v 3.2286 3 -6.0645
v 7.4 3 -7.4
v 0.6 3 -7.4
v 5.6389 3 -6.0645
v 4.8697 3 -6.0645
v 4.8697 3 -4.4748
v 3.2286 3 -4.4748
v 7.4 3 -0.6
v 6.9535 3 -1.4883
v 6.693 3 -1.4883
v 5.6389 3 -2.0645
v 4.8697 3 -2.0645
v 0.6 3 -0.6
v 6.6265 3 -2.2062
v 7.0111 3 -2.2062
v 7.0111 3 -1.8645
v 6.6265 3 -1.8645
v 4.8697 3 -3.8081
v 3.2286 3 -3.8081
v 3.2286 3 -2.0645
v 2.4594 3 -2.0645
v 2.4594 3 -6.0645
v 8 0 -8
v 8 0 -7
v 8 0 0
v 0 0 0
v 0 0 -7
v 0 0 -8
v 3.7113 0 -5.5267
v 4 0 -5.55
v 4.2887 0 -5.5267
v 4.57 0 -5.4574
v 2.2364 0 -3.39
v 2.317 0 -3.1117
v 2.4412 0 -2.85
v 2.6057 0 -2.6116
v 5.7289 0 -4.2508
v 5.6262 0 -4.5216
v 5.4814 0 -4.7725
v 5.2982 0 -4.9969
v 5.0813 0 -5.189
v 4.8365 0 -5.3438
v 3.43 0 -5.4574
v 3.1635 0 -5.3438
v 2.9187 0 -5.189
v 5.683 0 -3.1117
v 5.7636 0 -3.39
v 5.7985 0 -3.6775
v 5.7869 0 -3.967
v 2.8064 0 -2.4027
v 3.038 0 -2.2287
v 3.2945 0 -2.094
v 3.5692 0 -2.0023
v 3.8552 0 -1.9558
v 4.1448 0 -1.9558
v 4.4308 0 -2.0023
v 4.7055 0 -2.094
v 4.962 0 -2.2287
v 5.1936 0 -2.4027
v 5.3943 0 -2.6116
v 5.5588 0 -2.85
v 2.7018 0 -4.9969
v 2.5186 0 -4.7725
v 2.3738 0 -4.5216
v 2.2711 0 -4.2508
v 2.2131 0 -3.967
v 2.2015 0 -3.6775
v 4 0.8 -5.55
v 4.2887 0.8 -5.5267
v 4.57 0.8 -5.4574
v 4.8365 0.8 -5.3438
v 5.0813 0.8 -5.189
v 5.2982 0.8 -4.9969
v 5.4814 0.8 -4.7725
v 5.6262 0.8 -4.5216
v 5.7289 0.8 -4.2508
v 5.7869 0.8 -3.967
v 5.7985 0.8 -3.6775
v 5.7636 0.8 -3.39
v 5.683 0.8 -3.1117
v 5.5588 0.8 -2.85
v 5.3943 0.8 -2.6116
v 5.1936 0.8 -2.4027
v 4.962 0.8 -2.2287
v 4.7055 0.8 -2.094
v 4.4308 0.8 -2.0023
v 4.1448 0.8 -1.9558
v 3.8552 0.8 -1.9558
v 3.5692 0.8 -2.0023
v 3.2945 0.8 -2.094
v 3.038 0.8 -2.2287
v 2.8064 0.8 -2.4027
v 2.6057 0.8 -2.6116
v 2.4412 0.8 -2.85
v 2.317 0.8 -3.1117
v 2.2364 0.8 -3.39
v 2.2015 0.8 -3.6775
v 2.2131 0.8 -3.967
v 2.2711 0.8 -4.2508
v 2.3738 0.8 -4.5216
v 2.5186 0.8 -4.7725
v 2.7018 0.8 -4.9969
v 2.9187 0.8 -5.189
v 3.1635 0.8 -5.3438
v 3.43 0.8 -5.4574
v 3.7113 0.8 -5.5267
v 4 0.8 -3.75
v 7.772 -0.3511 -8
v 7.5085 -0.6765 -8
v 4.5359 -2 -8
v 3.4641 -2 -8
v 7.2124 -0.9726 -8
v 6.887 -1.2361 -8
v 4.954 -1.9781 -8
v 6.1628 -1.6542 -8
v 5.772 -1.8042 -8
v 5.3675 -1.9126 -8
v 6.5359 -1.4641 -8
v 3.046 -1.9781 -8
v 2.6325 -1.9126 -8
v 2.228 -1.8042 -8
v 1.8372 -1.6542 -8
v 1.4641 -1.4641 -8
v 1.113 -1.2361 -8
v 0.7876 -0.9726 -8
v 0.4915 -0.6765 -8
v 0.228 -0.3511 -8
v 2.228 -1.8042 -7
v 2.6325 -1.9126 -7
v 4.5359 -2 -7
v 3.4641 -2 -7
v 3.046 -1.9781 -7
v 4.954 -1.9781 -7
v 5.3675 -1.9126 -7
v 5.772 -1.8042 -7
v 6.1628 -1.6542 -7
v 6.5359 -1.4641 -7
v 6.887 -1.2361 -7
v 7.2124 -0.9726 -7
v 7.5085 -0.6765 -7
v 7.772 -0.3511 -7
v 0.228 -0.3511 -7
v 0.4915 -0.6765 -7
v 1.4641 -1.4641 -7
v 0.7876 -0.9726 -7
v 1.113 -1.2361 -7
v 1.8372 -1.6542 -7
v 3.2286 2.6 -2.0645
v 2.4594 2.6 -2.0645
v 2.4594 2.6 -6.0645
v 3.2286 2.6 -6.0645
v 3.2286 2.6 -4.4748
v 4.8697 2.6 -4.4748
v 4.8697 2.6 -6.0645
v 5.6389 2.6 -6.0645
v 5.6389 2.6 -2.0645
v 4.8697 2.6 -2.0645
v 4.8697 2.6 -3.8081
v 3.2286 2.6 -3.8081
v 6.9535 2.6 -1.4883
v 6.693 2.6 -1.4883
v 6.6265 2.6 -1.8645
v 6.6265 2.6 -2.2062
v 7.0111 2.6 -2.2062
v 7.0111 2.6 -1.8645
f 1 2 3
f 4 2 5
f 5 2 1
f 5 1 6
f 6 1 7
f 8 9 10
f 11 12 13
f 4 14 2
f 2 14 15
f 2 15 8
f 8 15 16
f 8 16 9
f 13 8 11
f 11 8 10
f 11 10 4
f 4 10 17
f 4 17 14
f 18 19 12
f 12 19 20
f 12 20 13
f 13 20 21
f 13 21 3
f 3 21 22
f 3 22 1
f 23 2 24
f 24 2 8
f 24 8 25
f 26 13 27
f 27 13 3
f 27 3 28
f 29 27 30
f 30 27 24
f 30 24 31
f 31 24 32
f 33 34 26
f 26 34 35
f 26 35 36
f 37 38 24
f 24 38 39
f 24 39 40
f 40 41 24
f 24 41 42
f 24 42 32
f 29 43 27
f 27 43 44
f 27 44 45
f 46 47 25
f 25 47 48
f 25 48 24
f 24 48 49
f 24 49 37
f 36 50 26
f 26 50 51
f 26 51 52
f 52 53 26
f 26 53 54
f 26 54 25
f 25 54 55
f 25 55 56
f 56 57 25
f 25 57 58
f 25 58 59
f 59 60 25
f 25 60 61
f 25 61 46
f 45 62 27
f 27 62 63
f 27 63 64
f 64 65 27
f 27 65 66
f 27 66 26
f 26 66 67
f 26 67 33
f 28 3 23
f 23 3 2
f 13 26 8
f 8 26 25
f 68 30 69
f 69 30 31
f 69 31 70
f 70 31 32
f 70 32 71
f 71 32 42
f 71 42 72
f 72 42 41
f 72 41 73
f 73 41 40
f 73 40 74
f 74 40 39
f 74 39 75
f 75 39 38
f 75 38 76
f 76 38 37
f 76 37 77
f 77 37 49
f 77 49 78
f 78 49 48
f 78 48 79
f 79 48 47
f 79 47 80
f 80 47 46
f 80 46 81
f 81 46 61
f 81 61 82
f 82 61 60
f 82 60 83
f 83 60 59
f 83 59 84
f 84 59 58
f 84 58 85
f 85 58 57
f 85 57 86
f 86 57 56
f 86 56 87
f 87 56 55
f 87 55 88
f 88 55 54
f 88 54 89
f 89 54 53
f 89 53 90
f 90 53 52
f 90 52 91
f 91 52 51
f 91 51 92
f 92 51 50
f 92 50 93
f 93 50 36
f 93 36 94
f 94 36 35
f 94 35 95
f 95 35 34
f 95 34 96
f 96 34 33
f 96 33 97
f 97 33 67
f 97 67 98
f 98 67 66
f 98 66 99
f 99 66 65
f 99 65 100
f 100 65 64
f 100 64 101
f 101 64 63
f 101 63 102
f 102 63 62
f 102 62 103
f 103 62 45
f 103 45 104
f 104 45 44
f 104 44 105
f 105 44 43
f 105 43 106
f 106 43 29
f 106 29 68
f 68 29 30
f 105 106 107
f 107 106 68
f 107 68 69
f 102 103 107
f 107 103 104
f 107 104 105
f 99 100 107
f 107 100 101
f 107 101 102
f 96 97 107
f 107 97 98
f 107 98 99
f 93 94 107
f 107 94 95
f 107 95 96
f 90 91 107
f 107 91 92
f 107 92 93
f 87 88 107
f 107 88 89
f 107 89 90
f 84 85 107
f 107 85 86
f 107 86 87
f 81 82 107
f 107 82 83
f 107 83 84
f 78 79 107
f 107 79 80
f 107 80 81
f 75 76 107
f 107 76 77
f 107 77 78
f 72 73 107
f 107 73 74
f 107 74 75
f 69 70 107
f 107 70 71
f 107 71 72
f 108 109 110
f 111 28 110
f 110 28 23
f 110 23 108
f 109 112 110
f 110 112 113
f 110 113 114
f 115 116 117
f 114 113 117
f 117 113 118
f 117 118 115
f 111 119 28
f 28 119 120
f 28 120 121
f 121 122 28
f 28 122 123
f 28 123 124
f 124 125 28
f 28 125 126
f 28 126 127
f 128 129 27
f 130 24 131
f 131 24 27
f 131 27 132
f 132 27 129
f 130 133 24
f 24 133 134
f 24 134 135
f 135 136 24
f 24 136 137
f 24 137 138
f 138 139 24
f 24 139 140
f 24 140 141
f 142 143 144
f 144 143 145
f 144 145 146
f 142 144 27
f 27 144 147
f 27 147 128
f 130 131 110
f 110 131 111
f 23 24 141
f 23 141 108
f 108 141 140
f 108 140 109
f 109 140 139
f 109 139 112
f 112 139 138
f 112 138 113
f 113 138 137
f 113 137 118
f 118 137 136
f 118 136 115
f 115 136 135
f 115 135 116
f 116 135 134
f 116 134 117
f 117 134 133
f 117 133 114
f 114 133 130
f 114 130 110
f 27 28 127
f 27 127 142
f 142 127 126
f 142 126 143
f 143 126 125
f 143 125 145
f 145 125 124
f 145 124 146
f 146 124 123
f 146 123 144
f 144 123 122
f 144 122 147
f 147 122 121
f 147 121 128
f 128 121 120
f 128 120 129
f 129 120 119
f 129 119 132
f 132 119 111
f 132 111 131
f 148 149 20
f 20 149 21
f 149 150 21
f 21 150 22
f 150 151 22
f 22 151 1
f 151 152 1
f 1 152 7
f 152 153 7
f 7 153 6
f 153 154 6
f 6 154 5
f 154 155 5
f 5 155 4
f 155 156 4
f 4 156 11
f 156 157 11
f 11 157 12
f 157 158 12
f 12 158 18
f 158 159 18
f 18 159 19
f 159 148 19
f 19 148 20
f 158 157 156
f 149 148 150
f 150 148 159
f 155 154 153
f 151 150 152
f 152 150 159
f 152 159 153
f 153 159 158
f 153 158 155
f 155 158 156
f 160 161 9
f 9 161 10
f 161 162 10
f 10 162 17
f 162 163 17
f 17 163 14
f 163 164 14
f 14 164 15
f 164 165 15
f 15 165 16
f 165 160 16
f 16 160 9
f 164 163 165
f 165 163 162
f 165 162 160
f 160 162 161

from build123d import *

# Parameters (mm, degrees)
SKETCH1_W               = 8
SKETCH1_H               = 8
BOSS_EXTRUDE1_DEPTH     = 3
CUT_EXTRUDE1_DEPTH      = 12.704699911
CUT_EXTRUDE1_DEPTH_BACK = 12.704699911
CUT_EXTRUDE2_DEPTH      = 11
SKETCH4_R               = 1.8
CUT_EXTRUDE3_DEPTH      = 0.8
SKETCH5_W               = 8
SKETCH5_H               = 1
BOSS_EXTRUDE2_DEPTH     = 2
FILLET1_R               = 4
CUT_EXTRUDE4_DEPTH      = 0.4
CUT_EXTRUDE5_DEPTH      = 0.4


with BuildPart() as part:
    # Sketch1 → Boss-Extrude1 (new body)
    with BuildSketch(Plane(origin=(0, 0, 0), x_dir=(1, 0, 0), z_dir=(0, 1, 0))):
        with Locations((4, 4)):
            Rectangle(SKETCH1_W, SKETCH1_H)
    extrude(amount=BOSS_EXTRUDE1_DEPTH)

    # Sketch2 → Cut-Extrude1 (cut, two sides: drawn at the far end of the back side and taken through both)
    with BuildSketch(Plane.XY.offset(-CUT_EXTRUDE1_DEPTH_BACK)):
        Polygon((0, 0), (0.6, 3), (0, 3), align=None)
        Polygon((8, 0), (7.4, 3), (8, 3), align=None)
    extrude(amount=CUT_EXTRUDE1_DEPTH + CUT_EXTRUDE1_DEPTH_BACK, mode=Mode.SUBTRACT)

    # Sketch3 → Cut-Extrude2 (cut)
    with BuildSketch(Plane(origin=(0, 0, 0), x_dir=(0, 0, -1), z_dir=(1, 0, 0))):
        Polygon((0, 0), (0.6, 3), (0, 3), align=None)
        Polygon((8, 3), (7.4, 3), (8, 0), align=None)
    extrude(amount=CUT_EXTRUDE2_DEPTH, mode=Mode.SUBTRACT)

    # Sketch4 → Cut-Extrude3 (cut)
    with BuildSketch(Plane.XZ):
        with Locations(Location((4, -3.75, 0), (0, 0, 270))):
            Circle(SKETCH4_R)
    extrude(amount=-CUT_EXTRUDE3_DEPTH, mode=Mode.SUBTRACT)

    # Sketch5 → Boss-Extrude2 (add)
    with BuildSketch(Plane.XZ):
        with Locations((4, -7.5)):
            Rectangle(SKETCH5_W, SKETCH5_H)
    extrude(amount=BOSS_EXTRUDE2_DEPTH)

    # Fillet1
    # the kernel refuses this fillet: 4 mm, written as the material it takes off along each edge
    with BuildSketch(Plane(origin=(8, -2, -16.660254038), x_dir=(0, 1, 0), z_dir=(0, 0, 1)), Plane(origin=(0, -2, 1.660254038), x_dir=(0, 1, 0), z_dir=(0, 0, -1))) as fillet1_piece_1:
        with BuildLine():
            CenterArc((4, 3.464101615), FILLET1_R, 180, 60)
            Line((0, 3.464101615), (-0.08, 3.464101615))
            Line((-0.08, 3.464101615), (-0.08, 0))
            Line((-0.08, 0), (0, -0.08))
            ThreePointArc((0, -0.08), (1, -0.08), (1.96, -0.069282032))
            Line((1.96, -0.069282032), (2, 0))
        make_face()
    extrude(amount=18.320508076, mode=Mode.SUBTRACT)

    # Sketch6 → Cut-Extrude4 (cut)
    with BuildSketch(Plane(origin=(0, 3, 0), x_dir=(1, 0, 0), z_dir=(0, 1, 0))):
        Polygon((2.459405501, 2.064543337), (2.459405501, 6.064543337), (3.22863627, 6.064543337), (3.22863627, 4.474799747), (4.869661911, 4.474799747), (4.869661911, 6.064543337), (5.63889268, 6.064543337), (5.63889268, 2.064543337), (4.869661911, 2.064543337), (4.869661911, 3.80813308), (3.22863627, 3.80813308), (3.22863627, 2.064543337), align=None)
    extrude(amount=-CUT_EXTRUDE4_DEPTH, mode=Mode.SUBTRACT)

    # Sketch7 → Cut-Extrude5 (cut)
    with BuildSketch(Plane(origin=(0, 3, 0), x_dir=(1, 0, 0), z_dir=(0, 1, 0))):
        Polygon((6.693034442, 1.488274187), (6.626528032, 1.86447611), (6.626528032, 2.206222905), (7.011143417, 2.206222905), (7.011143417, 1.86447611), (6.953451109, 1.488274187), align=None)
    extrude(amount=-CUT_EXTRUDE5_DEPTH, mode=Mode.SUBTRACT)


solid = part.part
